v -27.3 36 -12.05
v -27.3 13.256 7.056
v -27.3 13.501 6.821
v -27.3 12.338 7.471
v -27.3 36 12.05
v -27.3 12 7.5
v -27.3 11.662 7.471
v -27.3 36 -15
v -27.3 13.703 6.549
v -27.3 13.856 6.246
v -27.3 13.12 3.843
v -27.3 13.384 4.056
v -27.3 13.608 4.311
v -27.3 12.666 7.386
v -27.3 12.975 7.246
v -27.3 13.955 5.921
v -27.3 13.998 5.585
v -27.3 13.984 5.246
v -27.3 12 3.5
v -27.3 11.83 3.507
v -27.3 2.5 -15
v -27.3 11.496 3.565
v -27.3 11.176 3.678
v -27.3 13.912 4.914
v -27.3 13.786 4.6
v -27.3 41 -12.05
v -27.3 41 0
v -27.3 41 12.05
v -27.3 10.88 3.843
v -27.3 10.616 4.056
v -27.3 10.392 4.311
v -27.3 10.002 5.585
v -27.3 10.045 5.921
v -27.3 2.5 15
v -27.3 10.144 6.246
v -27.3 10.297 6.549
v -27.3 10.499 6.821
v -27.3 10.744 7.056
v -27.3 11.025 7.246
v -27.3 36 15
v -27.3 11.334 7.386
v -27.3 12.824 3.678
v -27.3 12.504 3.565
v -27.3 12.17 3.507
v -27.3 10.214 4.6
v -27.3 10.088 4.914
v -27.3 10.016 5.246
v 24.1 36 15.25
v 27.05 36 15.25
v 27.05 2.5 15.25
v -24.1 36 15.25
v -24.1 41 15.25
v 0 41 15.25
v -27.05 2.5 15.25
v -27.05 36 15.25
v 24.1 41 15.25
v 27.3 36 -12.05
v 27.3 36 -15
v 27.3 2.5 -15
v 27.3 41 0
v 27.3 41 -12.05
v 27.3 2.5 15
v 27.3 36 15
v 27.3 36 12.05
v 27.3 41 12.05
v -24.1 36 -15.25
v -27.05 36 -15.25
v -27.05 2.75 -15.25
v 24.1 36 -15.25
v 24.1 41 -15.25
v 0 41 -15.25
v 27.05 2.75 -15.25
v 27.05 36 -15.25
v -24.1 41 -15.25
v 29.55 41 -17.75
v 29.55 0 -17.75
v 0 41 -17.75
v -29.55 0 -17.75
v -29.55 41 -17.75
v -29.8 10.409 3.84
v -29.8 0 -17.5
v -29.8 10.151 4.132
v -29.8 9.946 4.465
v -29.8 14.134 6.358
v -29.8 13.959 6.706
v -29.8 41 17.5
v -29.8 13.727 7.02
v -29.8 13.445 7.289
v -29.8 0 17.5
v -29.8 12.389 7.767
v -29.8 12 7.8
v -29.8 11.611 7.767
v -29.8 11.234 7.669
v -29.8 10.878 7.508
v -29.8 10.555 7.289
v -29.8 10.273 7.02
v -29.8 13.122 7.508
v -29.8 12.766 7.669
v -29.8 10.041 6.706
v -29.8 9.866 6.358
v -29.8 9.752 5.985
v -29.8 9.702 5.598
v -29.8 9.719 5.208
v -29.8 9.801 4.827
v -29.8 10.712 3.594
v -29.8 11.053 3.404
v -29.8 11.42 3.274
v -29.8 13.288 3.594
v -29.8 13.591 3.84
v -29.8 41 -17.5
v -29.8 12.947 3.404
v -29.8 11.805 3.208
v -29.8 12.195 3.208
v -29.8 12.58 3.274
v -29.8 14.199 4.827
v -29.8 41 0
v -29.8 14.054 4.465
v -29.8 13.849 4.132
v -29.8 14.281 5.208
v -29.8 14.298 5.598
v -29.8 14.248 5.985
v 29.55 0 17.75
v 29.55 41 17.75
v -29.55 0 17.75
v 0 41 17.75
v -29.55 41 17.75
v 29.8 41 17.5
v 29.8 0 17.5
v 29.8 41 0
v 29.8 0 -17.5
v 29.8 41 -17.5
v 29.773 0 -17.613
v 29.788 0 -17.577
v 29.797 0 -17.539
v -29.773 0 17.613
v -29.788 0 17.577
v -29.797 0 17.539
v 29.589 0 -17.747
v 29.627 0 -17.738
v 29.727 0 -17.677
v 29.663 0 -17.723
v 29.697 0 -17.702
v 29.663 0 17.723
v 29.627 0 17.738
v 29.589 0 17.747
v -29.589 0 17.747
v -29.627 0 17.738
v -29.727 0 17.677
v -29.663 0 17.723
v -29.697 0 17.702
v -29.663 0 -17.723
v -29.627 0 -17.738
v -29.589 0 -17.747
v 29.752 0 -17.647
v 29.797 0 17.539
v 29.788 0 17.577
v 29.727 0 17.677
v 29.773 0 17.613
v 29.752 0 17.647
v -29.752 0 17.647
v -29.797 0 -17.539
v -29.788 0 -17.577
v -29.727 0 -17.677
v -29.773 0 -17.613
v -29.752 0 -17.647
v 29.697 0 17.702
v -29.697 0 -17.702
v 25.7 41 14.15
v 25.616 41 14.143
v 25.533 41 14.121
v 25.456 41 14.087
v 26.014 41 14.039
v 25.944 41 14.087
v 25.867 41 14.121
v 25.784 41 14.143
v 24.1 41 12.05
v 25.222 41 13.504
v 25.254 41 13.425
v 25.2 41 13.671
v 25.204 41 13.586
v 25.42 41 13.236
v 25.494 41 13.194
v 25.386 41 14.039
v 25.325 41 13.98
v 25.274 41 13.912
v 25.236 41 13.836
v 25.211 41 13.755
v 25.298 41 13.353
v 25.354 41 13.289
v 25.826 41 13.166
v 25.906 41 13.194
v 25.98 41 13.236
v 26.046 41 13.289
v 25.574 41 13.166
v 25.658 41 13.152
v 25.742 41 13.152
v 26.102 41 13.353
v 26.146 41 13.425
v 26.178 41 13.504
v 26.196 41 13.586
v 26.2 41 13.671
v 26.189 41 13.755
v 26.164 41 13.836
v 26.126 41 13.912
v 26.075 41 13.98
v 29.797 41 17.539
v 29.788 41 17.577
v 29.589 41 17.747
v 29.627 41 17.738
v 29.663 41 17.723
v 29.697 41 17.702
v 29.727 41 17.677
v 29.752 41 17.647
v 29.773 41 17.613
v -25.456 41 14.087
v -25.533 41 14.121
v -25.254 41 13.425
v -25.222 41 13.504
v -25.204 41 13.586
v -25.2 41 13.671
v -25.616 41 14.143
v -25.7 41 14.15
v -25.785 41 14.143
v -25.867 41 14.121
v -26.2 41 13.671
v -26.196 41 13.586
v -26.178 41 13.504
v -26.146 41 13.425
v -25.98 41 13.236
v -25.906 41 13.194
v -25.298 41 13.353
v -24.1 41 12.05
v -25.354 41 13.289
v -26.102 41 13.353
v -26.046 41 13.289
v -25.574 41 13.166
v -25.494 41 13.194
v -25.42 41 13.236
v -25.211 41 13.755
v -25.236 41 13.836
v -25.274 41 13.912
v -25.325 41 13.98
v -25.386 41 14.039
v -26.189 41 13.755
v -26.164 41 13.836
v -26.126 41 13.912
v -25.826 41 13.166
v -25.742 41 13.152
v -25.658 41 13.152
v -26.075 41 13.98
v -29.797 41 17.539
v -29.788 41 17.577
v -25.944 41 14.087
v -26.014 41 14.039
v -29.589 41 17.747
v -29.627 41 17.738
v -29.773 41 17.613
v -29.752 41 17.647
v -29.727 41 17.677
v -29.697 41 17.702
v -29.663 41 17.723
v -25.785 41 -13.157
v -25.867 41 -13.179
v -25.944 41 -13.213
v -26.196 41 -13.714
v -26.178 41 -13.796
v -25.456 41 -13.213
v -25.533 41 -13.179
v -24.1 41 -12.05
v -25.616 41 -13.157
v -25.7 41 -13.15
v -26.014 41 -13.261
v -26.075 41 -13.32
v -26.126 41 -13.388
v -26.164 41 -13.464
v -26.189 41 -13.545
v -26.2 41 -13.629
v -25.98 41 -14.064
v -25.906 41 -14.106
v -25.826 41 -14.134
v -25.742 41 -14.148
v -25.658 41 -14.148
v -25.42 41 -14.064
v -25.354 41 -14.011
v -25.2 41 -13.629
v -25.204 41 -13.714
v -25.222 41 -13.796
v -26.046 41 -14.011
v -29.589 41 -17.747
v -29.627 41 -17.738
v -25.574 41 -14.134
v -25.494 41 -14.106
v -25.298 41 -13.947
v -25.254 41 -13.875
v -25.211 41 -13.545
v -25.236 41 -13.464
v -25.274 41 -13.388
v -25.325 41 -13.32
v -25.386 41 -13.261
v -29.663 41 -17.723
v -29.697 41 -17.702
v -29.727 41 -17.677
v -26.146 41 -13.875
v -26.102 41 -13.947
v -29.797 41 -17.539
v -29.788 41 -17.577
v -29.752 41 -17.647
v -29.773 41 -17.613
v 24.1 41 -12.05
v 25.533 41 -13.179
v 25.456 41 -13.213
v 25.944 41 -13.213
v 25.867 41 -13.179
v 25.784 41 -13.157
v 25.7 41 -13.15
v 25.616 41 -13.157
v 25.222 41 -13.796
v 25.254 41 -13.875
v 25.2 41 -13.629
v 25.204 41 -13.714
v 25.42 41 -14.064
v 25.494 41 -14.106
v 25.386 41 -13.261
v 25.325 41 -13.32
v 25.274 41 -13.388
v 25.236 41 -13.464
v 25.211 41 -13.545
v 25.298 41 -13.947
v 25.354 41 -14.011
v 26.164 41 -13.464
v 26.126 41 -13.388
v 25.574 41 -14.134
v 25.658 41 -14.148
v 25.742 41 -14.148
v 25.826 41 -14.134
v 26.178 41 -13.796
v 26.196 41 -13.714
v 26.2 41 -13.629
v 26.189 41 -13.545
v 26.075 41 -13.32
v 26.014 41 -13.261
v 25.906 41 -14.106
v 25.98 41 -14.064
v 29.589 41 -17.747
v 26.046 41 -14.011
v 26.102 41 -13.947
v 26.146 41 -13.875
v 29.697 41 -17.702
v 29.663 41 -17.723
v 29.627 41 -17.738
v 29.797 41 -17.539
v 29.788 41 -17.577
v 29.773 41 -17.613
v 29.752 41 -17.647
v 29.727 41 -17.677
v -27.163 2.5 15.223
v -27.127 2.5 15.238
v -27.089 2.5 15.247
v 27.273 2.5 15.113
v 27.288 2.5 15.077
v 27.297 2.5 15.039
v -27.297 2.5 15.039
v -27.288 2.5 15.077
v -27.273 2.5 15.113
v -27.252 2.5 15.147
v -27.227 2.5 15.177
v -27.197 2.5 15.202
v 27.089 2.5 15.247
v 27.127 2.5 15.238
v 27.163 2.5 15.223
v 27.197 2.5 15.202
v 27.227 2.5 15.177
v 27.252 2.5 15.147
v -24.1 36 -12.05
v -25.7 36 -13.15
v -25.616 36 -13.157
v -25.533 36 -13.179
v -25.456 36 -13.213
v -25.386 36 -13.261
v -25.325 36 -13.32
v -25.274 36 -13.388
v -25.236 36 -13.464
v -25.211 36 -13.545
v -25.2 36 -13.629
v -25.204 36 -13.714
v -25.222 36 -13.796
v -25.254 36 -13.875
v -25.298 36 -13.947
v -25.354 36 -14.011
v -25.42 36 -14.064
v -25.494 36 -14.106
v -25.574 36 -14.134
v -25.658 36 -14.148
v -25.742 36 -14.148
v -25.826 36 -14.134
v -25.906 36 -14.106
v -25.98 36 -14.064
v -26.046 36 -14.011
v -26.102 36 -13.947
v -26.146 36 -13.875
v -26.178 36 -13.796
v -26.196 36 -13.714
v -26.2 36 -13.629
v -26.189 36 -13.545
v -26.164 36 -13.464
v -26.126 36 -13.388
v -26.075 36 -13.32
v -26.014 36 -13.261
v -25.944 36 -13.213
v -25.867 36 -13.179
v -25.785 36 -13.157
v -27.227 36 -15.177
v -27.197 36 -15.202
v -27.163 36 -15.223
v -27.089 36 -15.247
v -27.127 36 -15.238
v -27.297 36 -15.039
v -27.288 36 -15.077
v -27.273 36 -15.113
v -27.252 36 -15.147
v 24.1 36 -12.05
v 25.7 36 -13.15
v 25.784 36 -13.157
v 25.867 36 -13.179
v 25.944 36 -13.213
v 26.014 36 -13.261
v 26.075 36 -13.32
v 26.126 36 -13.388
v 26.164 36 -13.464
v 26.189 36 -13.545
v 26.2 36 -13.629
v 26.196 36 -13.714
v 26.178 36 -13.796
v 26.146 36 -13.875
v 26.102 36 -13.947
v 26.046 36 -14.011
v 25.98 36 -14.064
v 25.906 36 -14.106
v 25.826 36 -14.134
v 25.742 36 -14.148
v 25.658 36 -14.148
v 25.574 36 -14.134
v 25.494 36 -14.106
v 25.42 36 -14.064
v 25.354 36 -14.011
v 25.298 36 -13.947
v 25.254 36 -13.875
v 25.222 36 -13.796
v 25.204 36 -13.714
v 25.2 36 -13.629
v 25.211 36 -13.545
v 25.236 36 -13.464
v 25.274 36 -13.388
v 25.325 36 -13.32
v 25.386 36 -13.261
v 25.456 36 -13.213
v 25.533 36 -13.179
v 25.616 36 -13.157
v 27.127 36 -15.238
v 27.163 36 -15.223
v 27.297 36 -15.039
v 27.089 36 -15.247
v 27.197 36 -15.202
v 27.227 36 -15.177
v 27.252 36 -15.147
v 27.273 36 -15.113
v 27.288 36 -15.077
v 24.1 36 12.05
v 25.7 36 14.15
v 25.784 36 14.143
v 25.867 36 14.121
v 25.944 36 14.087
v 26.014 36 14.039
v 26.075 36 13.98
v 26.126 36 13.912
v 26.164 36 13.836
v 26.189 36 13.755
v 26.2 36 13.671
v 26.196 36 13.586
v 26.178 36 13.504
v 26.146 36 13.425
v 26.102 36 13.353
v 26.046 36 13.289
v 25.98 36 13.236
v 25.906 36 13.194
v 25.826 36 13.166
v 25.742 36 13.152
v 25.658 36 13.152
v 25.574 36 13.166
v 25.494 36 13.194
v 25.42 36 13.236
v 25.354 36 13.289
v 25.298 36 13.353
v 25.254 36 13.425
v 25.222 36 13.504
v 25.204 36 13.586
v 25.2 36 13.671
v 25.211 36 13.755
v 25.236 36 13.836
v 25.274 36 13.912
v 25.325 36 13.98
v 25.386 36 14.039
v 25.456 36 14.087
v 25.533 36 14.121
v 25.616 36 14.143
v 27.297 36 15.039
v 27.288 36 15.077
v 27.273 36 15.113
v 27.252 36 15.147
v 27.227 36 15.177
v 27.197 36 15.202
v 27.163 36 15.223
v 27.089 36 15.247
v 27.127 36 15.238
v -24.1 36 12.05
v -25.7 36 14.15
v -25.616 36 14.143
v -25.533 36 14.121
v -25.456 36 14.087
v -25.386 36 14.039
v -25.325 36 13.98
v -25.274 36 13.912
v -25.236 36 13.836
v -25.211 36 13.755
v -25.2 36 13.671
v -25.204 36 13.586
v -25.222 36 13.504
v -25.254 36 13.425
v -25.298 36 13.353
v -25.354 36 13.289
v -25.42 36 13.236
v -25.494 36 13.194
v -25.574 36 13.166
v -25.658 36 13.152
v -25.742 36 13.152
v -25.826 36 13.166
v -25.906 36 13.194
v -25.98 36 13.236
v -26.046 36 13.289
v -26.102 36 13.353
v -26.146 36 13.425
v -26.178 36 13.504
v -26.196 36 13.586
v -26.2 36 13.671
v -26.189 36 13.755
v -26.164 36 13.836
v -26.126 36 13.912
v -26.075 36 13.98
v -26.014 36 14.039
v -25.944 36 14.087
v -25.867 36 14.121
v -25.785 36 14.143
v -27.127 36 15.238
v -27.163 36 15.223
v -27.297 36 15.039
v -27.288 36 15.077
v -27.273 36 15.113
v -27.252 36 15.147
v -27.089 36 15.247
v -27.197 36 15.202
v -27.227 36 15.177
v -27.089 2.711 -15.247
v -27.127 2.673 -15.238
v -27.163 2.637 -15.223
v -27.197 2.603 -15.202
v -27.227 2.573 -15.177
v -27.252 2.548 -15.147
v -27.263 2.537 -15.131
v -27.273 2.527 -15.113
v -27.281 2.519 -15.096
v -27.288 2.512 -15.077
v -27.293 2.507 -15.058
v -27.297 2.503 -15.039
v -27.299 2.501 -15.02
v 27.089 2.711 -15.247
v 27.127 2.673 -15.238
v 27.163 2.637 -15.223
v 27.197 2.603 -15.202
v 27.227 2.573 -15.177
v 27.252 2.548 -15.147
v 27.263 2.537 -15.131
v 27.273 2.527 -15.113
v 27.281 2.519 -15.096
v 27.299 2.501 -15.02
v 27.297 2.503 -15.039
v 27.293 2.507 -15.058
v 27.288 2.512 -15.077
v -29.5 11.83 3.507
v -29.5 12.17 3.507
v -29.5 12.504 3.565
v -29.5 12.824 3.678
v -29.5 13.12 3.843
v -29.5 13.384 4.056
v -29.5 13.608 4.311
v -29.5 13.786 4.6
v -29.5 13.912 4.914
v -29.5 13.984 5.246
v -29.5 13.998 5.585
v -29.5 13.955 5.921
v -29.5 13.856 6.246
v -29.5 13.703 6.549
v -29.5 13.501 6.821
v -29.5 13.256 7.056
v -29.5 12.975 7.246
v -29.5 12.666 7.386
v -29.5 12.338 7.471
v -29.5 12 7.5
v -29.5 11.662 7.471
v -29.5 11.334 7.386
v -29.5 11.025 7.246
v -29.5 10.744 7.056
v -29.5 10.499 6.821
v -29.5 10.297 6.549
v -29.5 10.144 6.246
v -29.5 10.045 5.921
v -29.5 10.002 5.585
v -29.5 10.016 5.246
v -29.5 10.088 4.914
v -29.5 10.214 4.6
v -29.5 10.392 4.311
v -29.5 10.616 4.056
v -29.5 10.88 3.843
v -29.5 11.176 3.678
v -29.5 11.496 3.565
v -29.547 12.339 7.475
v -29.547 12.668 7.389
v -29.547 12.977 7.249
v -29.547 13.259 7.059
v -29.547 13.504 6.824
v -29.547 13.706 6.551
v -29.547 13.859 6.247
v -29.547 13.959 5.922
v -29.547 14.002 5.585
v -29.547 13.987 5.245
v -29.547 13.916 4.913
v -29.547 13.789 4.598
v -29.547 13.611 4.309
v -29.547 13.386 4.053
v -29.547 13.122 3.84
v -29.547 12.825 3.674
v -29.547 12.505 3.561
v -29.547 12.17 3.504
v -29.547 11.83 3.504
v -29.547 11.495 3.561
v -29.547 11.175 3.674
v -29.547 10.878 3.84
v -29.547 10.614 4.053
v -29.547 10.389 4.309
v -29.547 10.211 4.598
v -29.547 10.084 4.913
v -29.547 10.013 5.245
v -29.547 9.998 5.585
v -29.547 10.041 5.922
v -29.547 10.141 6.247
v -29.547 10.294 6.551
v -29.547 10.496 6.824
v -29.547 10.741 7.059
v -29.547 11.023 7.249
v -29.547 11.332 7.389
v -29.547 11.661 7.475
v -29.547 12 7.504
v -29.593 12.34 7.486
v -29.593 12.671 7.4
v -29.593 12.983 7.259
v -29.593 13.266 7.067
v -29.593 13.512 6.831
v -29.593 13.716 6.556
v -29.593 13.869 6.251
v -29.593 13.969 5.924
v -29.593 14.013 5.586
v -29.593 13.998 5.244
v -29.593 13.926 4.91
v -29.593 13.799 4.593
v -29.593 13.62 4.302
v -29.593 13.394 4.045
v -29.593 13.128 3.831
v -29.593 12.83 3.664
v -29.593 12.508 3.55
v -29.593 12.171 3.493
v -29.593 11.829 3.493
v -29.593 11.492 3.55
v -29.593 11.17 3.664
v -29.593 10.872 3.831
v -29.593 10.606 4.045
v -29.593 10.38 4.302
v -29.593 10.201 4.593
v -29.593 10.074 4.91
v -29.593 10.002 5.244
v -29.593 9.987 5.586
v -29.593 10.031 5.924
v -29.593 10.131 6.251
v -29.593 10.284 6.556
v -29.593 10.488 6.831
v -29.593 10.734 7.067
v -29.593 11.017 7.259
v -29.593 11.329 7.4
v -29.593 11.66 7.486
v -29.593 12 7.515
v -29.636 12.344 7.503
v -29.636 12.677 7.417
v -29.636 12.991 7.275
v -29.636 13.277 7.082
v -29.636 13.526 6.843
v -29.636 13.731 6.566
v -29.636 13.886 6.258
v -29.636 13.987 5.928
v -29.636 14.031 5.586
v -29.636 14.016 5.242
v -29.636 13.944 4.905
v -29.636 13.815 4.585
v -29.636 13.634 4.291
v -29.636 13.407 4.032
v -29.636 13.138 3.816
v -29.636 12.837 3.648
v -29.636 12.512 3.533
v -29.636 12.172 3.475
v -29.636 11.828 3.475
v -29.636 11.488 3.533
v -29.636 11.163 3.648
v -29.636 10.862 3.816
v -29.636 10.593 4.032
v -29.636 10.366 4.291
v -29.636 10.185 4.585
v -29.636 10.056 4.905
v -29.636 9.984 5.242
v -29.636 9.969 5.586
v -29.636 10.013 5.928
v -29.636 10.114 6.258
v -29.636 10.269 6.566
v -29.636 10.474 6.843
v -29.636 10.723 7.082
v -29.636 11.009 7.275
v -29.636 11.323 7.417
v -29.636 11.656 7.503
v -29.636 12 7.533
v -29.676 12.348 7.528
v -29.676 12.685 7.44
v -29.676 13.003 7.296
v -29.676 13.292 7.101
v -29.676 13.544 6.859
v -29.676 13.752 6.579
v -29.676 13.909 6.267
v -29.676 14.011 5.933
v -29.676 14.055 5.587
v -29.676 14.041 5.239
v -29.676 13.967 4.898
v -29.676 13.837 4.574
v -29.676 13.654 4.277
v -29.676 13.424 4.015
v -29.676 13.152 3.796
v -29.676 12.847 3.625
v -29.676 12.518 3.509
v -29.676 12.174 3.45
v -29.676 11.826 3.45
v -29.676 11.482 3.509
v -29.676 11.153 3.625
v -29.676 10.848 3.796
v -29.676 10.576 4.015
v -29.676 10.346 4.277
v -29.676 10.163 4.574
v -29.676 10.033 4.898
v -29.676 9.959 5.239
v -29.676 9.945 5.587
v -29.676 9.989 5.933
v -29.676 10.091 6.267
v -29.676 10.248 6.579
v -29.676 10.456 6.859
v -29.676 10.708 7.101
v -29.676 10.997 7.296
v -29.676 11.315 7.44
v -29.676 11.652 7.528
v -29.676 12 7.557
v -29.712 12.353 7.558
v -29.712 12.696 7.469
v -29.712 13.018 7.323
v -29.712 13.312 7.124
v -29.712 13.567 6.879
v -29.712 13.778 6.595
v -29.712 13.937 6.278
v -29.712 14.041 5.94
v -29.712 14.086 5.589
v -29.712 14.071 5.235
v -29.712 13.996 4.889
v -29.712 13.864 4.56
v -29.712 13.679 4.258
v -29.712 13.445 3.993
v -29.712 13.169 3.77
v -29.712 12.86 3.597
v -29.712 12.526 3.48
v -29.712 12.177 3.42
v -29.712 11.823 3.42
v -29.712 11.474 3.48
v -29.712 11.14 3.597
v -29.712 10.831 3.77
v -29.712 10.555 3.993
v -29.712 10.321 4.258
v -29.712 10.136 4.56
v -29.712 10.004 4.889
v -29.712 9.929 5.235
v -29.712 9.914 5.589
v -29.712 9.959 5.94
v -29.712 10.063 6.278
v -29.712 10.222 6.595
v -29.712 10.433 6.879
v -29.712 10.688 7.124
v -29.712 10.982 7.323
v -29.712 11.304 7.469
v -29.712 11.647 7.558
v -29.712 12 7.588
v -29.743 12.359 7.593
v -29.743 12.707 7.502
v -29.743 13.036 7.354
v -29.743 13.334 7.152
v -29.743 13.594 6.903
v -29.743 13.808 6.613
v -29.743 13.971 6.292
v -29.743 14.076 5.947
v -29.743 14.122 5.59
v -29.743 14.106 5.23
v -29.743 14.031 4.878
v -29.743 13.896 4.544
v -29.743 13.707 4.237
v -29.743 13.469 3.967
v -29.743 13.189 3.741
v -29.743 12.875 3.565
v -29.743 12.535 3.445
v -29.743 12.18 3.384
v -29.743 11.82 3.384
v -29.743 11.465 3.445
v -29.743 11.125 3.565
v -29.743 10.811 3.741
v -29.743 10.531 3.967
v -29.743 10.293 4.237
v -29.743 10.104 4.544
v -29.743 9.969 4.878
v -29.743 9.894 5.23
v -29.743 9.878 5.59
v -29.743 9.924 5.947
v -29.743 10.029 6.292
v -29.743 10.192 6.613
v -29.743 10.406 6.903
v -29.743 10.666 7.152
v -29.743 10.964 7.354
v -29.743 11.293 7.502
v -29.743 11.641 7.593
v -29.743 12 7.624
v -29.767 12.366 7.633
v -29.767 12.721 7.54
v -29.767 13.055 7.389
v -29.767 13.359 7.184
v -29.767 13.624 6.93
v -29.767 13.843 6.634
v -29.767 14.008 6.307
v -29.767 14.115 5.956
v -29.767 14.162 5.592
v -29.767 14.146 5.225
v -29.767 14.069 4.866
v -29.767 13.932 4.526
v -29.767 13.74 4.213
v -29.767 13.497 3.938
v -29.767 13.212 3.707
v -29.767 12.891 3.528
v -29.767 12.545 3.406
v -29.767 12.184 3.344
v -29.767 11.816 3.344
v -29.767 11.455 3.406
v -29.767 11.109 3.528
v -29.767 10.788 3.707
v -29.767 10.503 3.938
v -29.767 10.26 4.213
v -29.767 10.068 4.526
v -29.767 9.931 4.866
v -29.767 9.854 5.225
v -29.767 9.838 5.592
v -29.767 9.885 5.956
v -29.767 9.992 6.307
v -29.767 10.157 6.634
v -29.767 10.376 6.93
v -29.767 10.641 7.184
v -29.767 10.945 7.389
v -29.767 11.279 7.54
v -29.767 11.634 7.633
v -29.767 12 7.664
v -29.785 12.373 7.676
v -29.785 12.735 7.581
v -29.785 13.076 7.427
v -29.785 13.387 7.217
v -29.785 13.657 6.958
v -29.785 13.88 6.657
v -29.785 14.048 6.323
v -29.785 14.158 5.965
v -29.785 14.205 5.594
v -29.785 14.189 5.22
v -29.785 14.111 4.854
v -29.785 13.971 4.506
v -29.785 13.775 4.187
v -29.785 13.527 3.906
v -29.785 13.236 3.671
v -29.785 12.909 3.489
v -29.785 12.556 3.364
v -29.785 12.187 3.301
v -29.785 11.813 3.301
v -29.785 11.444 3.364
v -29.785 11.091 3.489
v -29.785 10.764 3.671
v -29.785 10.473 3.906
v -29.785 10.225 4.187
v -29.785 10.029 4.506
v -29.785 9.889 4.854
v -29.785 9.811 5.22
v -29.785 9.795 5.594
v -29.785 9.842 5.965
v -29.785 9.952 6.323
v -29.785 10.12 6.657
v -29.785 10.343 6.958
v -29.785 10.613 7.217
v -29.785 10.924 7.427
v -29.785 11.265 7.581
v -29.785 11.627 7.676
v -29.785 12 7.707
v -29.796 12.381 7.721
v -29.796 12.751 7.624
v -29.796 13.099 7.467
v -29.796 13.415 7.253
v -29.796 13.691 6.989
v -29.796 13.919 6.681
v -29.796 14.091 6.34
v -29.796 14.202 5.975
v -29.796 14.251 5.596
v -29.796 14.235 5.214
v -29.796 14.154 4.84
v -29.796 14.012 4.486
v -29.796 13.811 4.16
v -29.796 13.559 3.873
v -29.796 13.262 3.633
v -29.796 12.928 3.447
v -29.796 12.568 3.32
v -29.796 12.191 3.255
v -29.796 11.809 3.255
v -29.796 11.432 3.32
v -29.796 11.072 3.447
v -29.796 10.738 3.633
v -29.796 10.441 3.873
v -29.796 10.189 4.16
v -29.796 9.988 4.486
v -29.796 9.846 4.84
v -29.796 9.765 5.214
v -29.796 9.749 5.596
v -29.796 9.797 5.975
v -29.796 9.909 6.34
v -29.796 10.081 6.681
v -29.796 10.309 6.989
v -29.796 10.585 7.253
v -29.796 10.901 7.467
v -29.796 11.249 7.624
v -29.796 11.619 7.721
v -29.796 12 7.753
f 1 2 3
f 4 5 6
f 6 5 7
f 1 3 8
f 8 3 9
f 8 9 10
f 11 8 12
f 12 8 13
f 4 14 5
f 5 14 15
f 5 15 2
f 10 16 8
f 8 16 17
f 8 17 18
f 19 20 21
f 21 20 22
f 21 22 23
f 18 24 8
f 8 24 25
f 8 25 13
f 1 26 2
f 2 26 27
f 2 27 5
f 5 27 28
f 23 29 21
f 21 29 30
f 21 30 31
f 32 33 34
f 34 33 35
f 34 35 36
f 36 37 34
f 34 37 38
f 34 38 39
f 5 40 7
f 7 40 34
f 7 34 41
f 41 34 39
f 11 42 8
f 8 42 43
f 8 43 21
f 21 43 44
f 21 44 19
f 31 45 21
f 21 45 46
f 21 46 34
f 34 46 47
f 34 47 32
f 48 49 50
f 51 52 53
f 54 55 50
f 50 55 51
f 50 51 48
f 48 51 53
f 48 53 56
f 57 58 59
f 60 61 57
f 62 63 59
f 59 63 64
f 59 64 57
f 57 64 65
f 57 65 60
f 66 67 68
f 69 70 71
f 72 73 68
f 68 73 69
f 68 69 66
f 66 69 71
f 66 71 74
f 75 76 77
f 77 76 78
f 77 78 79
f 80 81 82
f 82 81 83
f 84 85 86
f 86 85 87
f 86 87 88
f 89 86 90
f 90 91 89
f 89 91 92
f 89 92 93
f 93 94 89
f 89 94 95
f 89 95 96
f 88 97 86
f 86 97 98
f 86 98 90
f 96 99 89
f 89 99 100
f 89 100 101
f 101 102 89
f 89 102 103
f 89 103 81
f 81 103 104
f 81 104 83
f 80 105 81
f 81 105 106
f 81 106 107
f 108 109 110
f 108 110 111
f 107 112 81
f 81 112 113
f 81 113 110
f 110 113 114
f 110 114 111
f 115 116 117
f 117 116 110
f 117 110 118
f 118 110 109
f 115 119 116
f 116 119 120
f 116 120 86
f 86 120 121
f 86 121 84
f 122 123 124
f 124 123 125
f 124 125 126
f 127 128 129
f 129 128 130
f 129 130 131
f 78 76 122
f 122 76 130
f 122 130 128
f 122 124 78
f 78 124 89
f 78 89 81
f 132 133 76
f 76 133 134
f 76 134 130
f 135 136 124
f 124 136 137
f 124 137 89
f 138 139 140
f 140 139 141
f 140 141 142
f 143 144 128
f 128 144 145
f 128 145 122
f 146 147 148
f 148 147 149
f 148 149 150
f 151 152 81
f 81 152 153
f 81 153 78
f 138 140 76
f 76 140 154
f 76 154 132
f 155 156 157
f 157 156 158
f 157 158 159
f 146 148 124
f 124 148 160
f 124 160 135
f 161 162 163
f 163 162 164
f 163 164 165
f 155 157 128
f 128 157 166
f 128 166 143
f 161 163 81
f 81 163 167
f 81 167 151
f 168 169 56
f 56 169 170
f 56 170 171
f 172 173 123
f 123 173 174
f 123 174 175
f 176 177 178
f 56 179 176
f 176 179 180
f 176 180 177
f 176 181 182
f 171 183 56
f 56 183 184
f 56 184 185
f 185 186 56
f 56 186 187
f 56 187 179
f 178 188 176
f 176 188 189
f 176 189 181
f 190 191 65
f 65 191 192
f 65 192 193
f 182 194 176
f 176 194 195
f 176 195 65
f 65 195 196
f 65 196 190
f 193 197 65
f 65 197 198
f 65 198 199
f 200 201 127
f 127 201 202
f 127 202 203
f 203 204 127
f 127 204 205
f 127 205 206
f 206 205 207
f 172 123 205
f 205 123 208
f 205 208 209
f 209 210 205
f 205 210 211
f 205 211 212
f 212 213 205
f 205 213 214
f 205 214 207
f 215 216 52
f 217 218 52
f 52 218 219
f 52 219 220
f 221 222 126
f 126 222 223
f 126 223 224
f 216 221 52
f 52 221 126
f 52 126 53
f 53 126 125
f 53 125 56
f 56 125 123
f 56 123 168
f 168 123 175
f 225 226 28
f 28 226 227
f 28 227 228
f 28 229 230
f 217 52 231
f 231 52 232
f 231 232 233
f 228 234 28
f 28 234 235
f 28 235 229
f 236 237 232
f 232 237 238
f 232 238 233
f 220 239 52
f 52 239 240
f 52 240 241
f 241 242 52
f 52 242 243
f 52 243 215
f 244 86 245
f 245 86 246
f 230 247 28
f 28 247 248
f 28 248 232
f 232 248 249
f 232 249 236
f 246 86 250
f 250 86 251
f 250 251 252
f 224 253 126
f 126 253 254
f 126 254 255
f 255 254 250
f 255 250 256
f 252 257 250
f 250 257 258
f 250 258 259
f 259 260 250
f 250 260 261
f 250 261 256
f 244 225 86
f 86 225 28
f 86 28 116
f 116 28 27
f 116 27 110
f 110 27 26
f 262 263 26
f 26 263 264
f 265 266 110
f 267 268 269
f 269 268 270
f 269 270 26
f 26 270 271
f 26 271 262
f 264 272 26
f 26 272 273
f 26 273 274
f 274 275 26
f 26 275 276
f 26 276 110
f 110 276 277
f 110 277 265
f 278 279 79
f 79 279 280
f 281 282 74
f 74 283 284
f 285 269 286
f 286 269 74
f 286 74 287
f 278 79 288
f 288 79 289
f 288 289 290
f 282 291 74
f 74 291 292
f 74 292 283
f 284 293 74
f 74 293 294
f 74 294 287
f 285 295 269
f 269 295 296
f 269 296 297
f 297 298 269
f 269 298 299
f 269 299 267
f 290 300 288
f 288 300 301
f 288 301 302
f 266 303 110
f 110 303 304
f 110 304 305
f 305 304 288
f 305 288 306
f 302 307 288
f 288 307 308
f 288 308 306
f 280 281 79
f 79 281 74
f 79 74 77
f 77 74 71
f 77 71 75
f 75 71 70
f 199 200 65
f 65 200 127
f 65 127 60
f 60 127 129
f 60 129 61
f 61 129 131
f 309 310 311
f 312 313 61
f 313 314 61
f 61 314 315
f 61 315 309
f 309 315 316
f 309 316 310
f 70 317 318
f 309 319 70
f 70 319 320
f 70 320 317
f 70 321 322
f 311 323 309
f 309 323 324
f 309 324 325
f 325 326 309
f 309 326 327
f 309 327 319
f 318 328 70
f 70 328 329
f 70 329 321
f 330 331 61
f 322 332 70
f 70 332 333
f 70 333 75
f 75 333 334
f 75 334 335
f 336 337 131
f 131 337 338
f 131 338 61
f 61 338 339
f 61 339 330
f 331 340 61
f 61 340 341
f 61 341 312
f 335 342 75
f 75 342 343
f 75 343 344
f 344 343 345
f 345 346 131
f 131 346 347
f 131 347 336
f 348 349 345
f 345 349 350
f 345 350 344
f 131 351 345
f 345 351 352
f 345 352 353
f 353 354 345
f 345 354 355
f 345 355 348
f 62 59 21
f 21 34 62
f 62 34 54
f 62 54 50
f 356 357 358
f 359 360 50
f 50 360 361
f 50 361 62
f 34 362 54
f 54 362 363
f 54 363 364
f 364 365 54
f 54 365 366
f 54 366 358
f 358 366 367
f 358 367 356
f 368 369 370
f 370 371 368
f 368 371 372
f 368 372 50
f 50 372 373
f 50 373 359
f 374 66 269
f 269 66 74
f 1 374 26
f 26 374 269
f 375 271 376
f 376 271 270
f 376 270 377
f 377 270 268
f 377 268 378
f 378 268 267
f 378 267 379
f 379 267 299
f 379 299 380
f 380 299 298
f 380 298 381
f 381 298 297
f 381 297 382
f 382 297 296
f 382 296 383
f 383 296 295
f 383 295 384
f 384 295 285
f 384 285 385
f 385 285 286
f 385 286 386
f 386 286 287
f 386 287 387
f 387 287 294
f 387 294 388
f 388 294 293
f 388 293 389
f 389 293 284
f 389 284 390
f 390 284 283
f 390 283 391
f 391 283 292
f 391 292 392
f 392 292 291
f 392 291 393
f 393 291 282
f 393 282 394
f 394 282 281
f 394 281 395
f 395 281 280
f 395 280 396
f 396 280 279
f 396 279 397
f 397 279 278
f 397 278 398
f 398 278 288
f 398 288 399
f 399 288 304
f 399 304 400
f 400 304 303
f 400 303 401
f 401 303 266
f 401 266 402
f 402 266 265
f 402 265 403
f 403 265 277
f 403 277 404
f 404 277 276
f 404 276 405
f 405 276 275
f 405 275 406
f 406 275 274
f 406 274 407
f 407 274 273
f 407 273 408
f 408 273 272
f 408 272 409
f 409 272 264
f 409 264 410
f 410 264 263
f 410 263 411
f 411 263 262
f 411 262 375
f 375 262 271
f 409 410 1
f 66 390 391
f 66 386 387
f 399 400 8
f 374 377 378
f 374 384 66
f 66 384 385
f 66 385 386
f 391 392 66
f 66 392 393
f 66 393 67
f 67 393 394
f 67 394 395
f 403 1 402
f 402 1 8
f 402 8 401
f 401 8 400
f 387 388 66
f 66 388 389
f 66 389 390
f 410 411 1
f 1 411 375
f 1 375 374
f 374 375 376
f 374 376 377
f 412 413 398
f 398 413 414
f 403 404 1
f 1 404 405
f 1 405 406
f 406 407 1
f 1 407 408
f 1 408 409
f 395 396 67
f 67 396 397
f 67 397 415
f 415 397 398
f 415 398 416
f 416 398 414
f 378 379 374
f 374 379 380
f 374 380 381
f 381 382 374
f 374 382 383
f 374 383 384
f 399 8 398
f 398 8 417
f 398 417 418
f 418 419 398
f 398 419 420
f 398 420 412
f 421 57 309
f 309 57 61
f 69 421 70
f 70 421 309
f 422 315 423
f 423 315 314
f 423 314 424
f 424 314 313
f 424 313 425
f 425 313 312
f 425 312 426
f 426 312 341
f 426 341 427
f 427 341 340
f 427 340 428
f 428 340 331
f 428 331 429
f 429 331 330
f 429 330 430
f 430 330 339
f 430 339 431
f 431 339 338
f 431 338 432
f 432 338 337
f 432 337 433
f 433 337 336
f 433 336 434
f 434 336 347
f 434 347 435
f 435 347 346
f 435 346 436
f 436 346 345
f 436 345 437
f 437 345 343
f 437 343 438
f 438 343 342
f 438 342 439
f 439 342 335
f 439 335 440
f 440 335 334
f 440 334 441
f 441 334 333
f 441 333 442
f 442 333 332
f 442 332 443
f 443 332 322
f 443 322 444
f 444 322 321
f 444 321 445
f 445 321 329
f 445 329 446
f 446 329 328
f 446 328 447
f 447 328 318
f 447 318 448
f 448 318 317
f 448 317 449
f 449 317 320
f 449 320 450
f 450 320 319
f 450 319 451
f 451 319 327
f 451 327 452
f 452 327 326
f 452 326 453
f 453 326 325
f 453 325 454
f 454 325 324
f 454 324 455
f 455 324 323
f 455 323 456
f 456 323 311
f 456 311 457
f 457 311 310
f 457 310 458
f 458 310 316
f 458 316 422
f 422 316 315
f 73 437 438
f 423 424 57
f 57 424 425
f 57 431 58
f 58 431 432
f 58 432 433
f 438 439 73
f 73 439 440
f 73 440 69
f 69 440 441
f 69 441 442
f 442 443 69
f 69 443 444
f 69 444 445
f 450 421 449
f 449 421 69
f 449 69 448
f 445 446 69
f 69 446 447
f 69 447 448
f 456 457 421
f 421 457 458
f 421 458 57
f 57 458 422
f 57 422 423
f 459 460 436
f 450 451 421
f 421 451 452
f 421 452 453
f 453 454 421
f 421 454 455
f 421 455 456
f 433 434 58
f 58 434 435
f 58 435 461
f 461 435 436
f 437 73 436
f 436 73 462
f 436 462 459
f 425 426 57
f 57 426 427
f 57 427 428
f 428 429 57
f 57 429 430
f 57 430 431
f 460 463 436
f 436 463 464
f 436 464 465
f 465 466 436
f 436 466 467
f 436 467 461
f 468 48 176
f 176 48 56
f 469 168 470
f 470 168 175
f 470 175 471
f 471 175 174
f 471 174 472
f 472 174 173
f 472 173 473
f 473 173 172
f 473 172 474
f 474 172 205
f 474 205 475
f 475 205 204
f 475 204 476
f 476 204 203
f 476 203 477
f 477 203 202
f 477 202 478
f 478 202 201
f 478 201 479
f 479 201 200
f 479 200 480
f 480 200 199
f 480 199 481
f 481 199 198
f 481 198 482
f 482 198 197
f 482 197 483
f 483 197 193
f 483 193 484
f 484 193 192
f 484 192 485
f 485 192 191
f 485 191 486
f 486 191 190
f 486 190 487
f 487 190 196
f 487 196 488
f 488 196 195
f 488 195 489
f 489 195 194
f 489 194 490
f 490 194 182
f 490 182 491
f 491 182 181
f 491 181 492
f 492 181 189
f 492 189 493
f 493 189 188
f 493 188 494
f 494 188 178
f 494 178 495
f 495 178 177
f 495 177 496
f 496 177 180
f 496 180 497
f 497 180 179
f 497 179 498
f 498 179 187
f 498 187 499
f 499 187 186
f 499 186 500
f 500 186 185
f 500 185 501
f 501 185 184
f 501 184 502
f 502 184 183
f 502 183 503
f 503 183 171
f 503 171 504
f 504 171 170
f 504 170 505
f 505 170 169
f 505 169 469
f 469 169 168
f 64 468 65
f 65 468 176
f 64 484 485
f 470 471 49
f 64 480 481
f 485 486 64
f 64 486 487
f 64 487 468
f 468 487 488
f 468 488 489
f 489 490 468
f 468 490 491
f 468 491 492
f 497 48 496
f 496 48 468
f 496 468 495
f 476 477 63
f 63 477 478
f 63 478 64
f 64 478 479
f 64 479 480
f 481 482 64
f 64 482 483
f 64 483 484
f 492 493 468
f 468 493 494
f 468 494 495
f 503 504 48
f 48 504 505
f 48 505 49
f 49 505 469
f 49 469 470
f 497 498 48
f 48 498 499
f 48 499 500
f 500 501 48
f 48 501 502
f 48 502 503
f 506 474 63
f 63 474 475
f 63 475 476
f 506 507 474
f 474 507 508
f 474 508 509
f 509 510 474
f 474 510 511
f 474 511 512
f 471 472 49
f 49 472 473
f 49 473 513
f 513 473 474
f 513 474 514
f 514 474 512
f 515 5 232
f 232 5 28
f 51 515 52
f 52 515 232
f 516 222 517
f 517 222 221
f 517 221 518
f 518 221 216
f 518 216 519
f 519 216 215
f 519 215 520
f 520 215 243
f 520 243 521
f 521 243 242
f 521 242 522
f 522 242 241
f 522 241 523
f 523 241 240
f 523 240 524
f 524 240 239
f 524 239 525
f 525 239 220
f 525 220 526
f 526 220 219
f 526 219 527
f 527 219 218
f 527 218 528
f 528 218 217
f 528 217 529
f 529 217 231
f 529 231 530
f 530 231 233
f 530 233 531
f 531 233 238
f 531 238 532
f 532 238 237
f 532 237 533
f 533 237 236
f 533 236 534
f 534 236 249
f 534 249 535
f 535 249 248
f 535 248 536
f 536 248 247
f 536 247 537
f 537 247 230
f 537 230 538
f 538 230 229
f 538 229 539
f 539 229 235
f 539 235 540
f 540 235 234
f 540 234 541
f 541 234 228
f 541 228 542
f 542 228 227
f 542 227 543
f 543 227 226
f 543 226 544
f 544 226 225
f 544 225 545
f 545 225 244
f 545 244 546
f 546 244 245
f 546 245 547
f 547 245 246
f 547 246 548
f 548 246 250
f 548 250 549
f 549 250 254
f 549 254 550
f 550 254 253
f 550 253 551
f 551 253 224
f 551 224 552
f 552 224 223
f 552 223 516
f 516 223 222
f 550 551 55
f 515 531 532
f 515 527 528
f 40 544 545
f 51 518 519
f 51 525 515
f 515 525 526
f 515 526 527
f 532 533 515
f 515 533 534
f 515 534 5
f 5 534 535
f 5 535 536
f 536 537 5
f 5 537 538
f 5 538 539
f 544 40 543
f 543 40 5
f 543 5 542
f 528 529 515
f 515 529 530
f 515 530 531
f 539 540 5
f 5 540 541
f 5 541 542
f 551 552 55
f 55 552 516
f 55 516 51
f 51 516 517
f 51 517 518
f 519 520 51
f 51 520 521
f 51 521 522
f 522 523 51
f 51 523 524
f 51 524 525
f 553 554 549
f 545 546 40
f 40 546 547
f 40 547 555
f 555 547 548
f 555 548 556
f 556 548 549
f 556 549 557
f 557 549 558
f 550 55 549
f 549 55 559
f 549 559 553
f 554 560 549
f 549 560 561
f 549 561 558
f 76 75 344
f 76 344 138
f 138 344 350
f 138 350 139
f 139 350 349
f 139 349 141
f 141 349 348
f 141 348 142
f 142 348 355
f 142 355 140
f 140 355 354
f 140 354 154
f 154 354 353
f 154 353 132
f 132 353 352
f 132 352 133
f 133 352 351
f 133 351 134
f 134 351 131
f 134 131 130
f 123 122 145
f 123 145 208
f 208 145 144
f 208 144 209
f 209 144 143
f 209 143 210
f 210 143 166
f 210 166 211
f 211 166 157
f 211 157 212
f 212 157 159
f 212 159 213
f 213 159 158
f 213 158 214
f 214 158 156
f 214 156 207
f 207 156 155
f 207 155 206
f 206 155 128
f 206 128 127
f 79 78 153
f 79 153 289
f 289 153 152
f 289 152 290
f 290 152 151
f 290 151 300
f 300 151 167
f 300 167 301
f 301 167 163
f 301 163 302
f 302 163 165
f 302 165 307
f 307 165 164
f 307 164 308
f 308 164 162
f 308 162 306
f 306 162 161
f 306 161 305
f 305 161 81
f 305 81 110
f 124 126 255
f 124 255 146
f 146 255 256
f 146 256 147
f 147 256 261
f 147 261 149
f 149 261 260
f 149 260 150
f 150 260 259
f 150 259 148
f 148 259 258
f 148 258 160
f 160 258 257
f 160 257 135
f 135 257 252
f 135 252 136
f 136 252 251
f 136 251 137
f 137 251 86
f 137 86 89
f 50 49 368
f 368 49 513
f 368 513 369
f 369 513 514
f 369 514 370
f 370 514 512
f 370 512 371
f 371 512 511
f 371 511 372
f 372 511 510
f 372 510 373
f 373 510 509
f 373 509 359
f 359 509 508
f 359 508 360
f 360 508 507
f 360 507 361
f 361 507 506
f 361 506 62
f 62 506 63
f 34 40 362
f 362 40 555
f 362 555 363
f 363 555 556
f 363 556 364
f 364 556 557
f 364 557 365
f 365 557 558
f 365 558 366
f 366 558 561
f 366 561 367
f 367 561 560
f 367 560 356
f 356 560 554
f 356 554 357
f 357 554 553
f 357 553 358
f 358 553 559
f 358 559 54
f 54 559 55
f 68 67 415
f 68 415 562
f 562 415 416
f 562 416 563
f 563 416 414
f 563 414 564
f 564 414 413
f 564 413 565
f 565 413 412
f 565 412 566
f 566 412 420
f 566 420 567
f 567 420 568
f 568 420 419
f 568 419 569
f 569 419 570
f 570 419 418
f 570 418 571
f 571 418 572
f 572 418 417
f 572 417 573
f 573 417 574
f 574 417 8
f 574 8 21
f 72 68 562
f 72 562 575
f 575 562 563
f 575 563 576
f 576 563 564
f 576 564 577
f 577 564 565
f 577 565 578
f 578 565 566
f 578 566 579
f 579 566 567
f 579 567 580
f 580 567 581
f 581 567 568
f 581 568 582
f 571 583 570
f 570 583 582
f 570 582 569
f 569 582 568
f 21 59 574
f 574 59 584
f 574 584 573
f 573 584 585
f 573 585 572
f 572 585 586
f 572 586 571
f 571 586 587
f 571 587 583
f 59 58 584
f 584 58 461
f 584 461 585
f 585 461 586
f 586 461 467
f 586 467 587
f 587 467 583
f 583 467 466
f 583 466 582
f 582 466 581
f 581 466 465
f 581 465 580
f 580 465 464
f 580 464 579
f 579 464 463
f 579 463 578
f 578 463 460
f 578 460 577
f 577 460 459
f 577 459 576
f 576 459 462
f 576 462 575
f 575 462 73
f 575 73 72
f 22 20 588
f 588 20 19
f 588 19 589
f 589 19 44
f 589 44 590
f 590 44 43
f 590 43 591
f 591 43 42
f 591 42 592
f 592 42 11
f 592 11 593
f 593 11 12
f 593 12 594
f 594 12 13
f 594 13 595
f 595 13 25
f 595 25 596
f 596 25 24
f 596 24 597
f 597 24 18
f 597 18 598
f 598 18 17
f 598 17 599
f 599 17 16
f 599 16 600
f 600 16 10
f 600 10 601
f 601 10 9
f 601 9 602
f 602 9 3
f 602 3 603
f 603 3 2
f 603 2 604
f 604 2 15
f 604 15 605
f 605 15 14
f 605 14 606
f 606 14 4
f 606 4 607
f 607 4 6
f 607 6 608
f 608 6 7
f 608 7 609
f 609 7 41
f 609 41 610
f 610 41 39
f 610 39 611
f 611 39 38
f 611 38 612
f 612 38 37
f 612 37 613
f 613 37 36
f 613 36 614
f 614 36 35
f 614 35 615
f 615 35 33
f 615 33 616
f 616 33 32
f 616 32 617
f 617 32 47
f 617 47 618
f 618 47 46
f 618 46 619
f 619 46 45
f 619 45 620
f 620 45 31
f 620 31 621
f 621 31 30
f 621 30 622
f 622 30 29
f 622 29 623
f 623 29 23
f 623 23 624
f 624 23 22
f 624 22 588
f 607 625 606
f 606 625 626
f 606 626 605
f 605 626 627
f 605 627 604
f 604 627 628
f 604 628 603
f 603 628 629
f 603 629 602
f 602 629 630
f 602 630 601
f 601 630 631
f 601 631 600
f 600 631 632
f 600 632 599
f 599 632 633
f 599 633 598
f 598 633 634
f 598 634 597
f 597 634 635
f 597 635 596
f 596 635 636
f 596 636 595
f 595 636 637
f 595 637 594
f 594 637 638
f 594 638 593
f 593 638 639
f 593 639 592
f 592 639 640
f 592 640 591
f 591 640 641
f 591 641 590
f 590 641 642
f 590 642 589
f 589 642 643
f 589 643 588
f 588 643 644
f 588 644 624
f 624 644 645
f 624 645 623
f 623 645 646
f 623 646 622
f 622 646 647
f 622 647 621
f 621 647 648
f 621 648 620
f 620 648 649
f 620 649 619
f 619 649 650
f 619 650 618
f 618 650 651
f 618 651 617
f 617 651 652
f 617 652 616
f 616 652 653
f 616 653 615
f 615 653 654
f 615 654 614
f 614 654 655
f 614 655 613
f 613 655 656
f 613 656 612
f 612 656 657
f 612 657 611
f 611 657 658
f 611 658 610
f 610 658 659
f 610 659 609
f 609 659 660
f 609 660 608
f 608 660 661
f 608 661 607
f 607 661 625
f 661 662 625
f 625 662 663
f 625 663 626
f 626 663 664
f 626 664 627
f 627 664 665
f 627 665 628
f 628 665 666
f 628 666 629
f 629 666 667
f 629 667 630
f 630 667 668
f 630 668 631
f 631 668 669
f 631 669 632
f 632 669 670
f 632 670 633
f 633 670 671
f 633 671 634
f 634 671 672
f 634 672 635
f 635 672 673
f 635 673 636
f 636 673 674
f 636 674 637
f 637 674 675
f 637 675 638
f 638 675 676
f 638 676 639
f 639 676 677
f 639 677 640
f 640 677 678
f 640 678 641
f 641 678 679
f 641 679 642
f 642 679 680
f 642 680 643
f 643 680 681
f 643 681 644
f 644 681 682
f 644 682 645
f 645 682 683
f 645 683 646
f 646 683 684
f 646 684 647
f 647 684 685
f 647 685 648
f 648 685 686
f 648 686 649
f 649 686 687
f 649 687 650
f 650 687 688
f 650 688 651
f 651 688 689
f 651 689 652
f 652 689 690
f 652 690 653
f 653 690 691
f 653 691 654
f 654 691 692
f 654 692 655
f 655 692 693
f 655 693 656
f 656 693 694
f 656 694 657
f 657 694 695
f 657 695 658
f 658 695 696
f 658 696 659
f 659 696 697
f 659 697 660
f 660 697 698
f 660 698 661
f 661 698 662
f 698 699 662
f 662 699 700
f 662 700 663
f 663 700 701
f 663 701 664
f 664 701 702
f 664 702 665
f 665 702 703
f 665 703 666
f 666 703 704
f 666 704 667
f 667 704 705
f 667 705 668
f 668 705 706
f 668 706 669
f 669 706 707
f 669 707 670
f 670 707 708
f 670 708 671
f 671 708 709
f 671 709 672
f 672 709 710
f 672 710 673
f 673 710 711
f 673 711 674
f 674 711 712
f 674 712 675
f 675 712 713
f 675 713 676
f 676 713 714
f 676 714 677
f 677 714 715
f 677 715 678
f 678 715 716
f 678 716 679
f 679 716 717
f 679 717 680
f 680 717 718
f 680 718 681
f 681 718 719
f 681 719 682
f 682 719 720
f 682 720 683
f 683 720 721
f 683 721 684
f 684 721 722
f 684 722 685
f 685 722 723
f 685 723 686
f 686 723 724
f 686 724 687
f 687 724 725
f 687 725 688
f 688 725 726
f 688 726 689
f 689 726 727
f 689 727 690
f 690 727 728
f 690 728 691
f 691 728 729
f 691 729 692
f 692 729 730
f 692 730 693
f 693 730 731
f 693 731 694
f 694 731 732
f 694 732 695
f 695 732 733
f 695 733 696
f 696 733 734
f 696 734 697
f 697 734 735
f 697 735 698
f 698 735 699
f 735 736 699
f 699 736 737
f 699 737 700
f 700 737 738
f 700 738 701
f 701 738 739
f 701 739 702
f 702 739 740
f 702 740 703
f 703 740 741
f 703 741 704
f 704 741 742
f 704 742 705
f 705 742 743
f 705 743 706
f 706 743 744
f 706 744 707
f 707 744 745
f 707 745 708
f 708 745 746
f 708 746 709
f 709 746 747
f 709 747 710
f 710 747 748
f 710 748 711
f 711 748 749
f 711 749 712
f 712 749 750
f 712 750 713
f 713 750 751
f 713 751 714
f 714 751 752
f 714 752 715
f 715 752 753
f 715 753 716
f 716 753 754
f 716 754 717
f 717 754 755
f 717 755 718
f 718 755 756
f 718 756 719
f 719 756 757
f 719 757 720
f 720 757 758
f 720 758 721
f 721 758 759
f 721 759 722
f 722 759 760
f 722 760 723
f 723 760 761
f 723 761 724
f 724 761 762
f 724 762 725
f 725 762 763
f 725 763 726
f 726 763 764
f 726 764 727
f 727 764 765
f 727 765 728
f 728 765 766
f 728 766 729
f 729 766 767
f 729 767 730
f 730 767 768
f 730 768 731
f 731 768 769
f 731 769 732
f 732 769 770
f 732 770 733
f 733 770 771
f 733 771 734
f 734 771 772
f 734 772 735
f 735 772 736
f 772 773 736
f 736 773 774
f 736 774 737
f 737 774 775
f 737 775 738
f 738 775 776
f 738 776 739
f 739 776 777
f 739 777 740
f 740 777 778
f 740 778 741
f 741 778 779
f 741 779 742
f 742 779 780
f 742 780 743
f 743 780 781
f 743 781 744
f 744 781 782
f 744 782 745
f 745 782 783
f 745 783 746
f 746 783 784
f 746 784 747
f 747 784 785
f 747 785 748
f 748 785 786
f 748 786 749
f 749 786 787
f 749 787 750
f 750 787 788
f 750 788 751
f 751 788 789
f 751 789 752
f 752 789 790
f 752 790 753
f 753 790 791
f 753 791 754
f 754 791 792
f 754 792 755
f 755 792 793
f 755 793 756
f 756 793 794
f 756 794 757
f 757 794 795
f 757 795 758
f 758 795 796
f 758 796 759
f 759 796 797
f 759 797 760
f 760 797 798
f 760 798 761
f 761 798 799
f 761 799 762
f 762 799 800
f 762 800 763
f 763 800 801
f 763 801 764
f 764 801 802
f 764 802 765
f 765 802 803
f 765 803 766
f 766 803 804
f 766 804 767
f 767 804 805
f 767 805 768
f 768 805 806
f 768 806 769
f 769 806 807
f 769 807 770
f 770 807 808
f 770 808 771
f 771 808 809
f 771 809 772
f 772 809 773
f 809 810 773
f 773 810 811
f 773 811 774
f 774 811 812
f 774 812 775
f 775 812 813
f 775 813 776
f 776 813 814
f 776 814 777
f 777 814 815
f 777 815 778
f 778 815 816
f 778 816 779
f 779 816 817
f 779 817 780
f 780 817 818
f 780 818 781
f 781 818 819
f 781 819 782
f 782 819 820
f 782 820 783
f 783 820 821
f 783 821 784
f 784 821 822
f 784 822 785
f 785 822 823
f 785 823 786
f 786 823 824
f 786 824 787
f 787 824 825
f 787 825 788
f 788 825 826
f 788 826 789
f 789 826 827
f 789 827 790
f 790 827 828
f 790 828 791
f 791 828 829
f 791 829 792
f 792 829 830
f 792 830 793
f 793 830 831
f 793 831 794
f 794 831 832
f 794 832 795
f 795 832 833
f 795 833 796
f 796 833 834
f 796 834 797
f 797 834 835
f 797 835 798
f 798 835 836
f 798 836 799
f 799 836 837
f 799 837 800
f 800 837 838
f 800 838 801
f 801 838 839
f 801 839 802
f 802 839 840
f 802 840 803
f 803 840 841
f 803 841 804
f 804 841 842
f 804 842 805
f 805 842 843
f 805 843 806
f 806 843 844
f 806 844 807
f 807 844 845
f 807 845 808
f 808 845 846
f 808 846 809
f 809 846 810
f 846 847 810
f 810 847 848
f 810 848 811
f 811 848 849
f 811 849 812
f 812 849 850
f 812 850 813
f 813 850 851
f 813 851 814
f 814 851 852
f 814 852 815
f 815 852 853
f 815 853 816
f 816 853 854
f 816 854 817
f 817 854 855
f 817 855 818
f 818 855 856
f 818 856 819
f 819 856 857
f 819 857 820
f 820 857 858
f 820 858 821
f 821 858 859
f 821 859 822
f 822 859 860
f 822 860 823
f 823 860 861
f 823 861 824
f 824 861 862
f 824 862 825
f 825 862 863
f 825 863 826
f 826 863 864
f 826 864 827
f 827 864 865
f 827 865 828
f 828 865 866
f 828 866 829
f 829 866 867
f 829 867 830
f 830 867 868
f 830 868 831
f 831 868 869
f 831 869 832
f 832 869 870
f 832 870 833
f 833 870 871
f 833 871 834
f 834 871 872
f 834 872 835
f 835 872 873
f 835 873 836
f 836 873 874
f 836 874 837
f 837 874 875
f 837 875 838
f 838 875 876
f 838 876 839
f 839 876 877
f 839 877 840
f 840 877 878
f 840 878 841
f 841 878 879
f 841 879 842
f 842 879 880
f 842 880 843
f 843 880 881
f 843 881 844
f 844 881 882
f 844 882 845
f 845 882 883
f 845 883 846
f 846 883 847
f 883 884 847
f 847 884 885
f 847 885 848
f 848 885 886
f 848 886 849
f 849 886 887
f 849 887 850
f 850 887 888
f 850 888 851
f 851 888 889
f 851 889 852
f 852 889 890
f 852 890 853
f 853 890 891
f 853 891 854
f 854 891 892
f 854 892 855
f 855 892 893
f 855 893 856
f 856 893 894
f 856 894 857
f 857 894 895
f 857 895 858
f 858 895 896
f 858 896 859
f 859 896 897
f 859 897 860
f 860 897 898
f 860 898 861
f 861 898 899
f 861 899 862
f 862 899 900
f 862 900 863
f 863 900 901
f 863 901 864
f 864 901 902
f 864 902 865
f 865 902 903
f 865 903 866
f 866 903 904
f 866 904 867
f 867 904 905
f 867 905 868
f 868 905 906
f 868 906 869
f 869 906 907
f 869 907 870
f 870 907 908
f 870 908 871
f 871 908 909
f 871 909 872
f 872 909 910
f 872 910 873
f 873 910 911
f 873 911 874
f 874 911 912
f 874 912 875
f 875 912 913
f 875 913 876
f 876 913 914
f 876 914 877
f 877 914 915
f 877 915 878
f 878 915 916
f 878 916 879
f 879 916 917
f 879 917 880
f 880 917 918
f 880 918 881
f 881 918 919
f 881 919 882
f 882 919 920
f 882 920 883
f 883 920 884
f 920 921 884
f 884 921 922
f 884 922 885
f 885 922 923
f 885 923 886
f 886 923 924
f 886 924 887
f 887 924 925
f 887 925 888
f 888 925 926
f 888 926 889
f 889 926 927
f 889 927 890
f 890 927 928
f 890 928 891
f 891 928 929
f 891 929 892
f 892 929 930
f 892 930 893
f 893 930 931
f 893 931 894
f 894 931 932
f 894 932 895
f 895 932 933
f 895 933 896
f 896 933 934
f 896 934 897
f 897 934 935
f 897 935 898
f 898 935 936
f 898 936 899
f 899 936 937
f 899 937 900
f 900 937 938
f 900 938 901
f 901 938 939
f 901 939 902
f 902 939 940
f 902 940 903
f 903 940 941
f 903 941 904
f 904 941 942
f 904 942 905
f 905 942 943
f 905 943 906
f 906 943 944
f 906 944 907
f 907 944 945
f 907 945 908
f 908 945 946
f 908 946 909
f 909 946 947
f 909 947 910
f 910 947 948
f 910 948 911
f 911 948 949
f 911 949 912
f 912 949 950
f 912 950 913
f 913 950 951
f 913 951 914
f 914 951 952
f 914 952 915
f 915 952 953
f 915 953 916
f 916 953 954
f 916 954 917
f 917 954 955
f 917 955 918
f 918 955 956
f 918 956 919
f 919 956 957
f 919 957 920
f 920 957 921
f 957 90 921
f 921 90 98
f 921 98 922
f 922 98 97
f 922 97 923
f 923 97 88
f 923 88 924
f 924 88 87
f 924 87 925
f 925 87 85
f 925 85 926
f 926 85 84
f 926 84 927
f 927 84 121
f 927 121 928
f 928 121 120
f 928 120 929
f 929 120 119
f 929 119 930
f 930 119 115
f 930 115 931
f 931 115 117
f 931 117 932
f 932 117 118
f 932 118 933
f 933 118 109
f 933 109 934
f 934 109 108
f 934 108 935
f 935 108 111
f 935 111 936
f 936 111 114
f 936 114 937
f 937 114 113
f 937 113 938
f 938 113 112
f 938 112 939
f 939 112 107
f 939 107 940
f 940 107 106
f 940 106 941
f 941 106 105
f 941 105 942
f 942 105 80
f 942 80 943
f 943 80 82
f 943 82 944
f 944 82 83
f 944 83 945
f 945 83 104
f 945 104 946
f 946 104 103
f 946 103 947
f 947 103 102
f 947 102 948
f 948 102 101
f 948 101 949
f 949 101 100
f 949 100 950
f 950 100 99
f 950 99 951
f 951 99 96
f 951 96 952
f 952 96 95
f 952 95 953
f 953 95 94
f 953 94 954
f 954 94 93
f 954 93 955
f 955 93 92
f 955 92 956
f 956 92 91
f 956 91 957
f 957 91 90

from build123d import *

# Parameters (mm, degrees)
SKETCH1_W           = 59.6
SKETCH1_H           = 35.5
BOSS_EXTRUDE1_DEPTH = 2.5
SKETCH3_W           = 59.6
SKETCH3_H           = 35.5
SKETCH3_W_2         = 54.6
SKETCH3_H_2         = 30.5
BOSS_EXTRUDE4_DEPTH = 38.5
SKETCH4_W           = 3.2
SKETCH4_H           = 3.2
SKETCH4_R           = 0.5
BOSS_EXTRUDE7_DEPTH = 5
FILLET1_R           = 0.25
FILLET2_R           = 0.25
SKETCH6_R           = 2
CUT_EXTRUDE1_DEPTH  = 5
FILLET4_R           = 0.3


with BuildPart() as part:
    # Sketch1 → Boss-Extrude1 (new body)
    with BuildSketch(Plane(origin=(0, 0, 0), x_dir=(1, 0, 0), z_dir=(0, 1, 0))):
        Rectangle(SKETCH1_W, SKETCH1_H)
    extrude(amount=BOSS_EXTRUDE1_DEPTH)

    # Sketch3 → Boss-Extrude4 (add)
    with BuildSketch(Plane(origin=(0, 2.5, 0), x_dir=(1, 0, 0), z_dir=(0, 1, 0))):
        Rectangle(SKETCH3_W, SKETCH3_H)
        Rectangle(SKETCH3_W_2, SKETCH3_H_2, mode=Mode.SUBTRACT)
    extrude(amount=BOSS_EXTRUDE4_DEPTH)

    # Sketch4 → Boss-Extrude7 (add)
    # profile 1 of 4: a face of its own
    with BuildSketch(Plane(origin=(0, 41, 0), x_dir=(1, 0, 0), z_dir=(0, 1, 0))):
        with Locations((-25.7, 13.65)):
            Rectangle(SKETCH4_W, SKETCH4_H)
        with Locations(Location((-25.7, 13.65, 0), (0, 0, 270))):
            Circle(SKETCH4_R, mode=Mode.SUBTRACT)
    # profile 2 of 4: a face of its own
    with BuildSketch(Plane(origin=(0, 41, 0), x_dir=(1, 0, 0), z_dir=(0, 1, 0))):
        with Locations((25.7, 13.65)):
            Rectangle(SKETCH4_W, SKETCH4_H)
        with Locations(Location((25.7, 13.65, 0), (0, 0, 270))):
            Circle(SKETCH4_R, mode=Mode.SUBTRACT)
    # profile 3 of 4: a face of its own
    with BuildSketch(Plane(origin=(0, 41, 0), x_dir=(1, 0, 0), z_dir=(0, 1, 0))):
        with Locations((25.7, -13.65)):
            Rectangle(SKETCH4_W, SKETCH4_H)
        with Locations(Location((25.7, -13.65, 0), (0, 0, 270))):
            Circle(SKETCH4_R, mode=Mode.SUBTRACT)
    # profile 4 of 4: a face of its own
    with BuildSketch(Plane(origin=(0, 41, 0), x_dir=(1, 0, 0), z_dir=(0, 1, 0))):
        with Locations((-25.7, -13.65)):
            Rectangle(SKETCH4_W, SKETCH4_H)
        with Locations(Location((-25.7, -13.65, 0), (0, 0, 270))):
            Circle(SKETCH4_R, mode=Mode.SUBTRACT)
    extrude(amount=-BOSS_EXTRUDE7_DEPTH)

    # Fillet1
    fillet1_edges = [part.edges().sort_by_distance(p)[0] for p in [
        (-29.8, 20.5, -17.75),
        (-29.8, 20.5, 17.75),
        (29.8, 20.5, 17.75),
        (29.8, 20.5, -17.75),
    ]]
    fillet(fillet1_edges, radius=FILLET1_R)

    # Fillet2
    fillet2_edges = [part.edges().sort_by_distance(p)[0] for p in [
        (0, 2.5, -15.25),
        (-27.3, 19.25, -15.25),
        (27.3, 19.25, -15.25),
        (27.3, 19.25, 15.25),
        (-27.3, 19.25, 15.25),
    ]]
    fillet(fillet2_edges, radius=FILLET2_R)

    # Sketch6 → Cut-Extrude1 (cut)
    with BuildSketch(Plane.ZY.offset(29.8)):
        with Locations((5.5, 12)):
            Circle(SKETCH6_R)
    extrude(amount=-CUT_EXTRUDE1_DEPTH, mode=Mode.SUBTRACT)

    # Fillet4
    fillet4_edges = [part.edges().sort_by_distance(p)[0] for p in [
        (-29.8, 12, 3.5),
    ]]
    fillet(fillet4_edges, radius=FILLET4_R)


solid = part.part
